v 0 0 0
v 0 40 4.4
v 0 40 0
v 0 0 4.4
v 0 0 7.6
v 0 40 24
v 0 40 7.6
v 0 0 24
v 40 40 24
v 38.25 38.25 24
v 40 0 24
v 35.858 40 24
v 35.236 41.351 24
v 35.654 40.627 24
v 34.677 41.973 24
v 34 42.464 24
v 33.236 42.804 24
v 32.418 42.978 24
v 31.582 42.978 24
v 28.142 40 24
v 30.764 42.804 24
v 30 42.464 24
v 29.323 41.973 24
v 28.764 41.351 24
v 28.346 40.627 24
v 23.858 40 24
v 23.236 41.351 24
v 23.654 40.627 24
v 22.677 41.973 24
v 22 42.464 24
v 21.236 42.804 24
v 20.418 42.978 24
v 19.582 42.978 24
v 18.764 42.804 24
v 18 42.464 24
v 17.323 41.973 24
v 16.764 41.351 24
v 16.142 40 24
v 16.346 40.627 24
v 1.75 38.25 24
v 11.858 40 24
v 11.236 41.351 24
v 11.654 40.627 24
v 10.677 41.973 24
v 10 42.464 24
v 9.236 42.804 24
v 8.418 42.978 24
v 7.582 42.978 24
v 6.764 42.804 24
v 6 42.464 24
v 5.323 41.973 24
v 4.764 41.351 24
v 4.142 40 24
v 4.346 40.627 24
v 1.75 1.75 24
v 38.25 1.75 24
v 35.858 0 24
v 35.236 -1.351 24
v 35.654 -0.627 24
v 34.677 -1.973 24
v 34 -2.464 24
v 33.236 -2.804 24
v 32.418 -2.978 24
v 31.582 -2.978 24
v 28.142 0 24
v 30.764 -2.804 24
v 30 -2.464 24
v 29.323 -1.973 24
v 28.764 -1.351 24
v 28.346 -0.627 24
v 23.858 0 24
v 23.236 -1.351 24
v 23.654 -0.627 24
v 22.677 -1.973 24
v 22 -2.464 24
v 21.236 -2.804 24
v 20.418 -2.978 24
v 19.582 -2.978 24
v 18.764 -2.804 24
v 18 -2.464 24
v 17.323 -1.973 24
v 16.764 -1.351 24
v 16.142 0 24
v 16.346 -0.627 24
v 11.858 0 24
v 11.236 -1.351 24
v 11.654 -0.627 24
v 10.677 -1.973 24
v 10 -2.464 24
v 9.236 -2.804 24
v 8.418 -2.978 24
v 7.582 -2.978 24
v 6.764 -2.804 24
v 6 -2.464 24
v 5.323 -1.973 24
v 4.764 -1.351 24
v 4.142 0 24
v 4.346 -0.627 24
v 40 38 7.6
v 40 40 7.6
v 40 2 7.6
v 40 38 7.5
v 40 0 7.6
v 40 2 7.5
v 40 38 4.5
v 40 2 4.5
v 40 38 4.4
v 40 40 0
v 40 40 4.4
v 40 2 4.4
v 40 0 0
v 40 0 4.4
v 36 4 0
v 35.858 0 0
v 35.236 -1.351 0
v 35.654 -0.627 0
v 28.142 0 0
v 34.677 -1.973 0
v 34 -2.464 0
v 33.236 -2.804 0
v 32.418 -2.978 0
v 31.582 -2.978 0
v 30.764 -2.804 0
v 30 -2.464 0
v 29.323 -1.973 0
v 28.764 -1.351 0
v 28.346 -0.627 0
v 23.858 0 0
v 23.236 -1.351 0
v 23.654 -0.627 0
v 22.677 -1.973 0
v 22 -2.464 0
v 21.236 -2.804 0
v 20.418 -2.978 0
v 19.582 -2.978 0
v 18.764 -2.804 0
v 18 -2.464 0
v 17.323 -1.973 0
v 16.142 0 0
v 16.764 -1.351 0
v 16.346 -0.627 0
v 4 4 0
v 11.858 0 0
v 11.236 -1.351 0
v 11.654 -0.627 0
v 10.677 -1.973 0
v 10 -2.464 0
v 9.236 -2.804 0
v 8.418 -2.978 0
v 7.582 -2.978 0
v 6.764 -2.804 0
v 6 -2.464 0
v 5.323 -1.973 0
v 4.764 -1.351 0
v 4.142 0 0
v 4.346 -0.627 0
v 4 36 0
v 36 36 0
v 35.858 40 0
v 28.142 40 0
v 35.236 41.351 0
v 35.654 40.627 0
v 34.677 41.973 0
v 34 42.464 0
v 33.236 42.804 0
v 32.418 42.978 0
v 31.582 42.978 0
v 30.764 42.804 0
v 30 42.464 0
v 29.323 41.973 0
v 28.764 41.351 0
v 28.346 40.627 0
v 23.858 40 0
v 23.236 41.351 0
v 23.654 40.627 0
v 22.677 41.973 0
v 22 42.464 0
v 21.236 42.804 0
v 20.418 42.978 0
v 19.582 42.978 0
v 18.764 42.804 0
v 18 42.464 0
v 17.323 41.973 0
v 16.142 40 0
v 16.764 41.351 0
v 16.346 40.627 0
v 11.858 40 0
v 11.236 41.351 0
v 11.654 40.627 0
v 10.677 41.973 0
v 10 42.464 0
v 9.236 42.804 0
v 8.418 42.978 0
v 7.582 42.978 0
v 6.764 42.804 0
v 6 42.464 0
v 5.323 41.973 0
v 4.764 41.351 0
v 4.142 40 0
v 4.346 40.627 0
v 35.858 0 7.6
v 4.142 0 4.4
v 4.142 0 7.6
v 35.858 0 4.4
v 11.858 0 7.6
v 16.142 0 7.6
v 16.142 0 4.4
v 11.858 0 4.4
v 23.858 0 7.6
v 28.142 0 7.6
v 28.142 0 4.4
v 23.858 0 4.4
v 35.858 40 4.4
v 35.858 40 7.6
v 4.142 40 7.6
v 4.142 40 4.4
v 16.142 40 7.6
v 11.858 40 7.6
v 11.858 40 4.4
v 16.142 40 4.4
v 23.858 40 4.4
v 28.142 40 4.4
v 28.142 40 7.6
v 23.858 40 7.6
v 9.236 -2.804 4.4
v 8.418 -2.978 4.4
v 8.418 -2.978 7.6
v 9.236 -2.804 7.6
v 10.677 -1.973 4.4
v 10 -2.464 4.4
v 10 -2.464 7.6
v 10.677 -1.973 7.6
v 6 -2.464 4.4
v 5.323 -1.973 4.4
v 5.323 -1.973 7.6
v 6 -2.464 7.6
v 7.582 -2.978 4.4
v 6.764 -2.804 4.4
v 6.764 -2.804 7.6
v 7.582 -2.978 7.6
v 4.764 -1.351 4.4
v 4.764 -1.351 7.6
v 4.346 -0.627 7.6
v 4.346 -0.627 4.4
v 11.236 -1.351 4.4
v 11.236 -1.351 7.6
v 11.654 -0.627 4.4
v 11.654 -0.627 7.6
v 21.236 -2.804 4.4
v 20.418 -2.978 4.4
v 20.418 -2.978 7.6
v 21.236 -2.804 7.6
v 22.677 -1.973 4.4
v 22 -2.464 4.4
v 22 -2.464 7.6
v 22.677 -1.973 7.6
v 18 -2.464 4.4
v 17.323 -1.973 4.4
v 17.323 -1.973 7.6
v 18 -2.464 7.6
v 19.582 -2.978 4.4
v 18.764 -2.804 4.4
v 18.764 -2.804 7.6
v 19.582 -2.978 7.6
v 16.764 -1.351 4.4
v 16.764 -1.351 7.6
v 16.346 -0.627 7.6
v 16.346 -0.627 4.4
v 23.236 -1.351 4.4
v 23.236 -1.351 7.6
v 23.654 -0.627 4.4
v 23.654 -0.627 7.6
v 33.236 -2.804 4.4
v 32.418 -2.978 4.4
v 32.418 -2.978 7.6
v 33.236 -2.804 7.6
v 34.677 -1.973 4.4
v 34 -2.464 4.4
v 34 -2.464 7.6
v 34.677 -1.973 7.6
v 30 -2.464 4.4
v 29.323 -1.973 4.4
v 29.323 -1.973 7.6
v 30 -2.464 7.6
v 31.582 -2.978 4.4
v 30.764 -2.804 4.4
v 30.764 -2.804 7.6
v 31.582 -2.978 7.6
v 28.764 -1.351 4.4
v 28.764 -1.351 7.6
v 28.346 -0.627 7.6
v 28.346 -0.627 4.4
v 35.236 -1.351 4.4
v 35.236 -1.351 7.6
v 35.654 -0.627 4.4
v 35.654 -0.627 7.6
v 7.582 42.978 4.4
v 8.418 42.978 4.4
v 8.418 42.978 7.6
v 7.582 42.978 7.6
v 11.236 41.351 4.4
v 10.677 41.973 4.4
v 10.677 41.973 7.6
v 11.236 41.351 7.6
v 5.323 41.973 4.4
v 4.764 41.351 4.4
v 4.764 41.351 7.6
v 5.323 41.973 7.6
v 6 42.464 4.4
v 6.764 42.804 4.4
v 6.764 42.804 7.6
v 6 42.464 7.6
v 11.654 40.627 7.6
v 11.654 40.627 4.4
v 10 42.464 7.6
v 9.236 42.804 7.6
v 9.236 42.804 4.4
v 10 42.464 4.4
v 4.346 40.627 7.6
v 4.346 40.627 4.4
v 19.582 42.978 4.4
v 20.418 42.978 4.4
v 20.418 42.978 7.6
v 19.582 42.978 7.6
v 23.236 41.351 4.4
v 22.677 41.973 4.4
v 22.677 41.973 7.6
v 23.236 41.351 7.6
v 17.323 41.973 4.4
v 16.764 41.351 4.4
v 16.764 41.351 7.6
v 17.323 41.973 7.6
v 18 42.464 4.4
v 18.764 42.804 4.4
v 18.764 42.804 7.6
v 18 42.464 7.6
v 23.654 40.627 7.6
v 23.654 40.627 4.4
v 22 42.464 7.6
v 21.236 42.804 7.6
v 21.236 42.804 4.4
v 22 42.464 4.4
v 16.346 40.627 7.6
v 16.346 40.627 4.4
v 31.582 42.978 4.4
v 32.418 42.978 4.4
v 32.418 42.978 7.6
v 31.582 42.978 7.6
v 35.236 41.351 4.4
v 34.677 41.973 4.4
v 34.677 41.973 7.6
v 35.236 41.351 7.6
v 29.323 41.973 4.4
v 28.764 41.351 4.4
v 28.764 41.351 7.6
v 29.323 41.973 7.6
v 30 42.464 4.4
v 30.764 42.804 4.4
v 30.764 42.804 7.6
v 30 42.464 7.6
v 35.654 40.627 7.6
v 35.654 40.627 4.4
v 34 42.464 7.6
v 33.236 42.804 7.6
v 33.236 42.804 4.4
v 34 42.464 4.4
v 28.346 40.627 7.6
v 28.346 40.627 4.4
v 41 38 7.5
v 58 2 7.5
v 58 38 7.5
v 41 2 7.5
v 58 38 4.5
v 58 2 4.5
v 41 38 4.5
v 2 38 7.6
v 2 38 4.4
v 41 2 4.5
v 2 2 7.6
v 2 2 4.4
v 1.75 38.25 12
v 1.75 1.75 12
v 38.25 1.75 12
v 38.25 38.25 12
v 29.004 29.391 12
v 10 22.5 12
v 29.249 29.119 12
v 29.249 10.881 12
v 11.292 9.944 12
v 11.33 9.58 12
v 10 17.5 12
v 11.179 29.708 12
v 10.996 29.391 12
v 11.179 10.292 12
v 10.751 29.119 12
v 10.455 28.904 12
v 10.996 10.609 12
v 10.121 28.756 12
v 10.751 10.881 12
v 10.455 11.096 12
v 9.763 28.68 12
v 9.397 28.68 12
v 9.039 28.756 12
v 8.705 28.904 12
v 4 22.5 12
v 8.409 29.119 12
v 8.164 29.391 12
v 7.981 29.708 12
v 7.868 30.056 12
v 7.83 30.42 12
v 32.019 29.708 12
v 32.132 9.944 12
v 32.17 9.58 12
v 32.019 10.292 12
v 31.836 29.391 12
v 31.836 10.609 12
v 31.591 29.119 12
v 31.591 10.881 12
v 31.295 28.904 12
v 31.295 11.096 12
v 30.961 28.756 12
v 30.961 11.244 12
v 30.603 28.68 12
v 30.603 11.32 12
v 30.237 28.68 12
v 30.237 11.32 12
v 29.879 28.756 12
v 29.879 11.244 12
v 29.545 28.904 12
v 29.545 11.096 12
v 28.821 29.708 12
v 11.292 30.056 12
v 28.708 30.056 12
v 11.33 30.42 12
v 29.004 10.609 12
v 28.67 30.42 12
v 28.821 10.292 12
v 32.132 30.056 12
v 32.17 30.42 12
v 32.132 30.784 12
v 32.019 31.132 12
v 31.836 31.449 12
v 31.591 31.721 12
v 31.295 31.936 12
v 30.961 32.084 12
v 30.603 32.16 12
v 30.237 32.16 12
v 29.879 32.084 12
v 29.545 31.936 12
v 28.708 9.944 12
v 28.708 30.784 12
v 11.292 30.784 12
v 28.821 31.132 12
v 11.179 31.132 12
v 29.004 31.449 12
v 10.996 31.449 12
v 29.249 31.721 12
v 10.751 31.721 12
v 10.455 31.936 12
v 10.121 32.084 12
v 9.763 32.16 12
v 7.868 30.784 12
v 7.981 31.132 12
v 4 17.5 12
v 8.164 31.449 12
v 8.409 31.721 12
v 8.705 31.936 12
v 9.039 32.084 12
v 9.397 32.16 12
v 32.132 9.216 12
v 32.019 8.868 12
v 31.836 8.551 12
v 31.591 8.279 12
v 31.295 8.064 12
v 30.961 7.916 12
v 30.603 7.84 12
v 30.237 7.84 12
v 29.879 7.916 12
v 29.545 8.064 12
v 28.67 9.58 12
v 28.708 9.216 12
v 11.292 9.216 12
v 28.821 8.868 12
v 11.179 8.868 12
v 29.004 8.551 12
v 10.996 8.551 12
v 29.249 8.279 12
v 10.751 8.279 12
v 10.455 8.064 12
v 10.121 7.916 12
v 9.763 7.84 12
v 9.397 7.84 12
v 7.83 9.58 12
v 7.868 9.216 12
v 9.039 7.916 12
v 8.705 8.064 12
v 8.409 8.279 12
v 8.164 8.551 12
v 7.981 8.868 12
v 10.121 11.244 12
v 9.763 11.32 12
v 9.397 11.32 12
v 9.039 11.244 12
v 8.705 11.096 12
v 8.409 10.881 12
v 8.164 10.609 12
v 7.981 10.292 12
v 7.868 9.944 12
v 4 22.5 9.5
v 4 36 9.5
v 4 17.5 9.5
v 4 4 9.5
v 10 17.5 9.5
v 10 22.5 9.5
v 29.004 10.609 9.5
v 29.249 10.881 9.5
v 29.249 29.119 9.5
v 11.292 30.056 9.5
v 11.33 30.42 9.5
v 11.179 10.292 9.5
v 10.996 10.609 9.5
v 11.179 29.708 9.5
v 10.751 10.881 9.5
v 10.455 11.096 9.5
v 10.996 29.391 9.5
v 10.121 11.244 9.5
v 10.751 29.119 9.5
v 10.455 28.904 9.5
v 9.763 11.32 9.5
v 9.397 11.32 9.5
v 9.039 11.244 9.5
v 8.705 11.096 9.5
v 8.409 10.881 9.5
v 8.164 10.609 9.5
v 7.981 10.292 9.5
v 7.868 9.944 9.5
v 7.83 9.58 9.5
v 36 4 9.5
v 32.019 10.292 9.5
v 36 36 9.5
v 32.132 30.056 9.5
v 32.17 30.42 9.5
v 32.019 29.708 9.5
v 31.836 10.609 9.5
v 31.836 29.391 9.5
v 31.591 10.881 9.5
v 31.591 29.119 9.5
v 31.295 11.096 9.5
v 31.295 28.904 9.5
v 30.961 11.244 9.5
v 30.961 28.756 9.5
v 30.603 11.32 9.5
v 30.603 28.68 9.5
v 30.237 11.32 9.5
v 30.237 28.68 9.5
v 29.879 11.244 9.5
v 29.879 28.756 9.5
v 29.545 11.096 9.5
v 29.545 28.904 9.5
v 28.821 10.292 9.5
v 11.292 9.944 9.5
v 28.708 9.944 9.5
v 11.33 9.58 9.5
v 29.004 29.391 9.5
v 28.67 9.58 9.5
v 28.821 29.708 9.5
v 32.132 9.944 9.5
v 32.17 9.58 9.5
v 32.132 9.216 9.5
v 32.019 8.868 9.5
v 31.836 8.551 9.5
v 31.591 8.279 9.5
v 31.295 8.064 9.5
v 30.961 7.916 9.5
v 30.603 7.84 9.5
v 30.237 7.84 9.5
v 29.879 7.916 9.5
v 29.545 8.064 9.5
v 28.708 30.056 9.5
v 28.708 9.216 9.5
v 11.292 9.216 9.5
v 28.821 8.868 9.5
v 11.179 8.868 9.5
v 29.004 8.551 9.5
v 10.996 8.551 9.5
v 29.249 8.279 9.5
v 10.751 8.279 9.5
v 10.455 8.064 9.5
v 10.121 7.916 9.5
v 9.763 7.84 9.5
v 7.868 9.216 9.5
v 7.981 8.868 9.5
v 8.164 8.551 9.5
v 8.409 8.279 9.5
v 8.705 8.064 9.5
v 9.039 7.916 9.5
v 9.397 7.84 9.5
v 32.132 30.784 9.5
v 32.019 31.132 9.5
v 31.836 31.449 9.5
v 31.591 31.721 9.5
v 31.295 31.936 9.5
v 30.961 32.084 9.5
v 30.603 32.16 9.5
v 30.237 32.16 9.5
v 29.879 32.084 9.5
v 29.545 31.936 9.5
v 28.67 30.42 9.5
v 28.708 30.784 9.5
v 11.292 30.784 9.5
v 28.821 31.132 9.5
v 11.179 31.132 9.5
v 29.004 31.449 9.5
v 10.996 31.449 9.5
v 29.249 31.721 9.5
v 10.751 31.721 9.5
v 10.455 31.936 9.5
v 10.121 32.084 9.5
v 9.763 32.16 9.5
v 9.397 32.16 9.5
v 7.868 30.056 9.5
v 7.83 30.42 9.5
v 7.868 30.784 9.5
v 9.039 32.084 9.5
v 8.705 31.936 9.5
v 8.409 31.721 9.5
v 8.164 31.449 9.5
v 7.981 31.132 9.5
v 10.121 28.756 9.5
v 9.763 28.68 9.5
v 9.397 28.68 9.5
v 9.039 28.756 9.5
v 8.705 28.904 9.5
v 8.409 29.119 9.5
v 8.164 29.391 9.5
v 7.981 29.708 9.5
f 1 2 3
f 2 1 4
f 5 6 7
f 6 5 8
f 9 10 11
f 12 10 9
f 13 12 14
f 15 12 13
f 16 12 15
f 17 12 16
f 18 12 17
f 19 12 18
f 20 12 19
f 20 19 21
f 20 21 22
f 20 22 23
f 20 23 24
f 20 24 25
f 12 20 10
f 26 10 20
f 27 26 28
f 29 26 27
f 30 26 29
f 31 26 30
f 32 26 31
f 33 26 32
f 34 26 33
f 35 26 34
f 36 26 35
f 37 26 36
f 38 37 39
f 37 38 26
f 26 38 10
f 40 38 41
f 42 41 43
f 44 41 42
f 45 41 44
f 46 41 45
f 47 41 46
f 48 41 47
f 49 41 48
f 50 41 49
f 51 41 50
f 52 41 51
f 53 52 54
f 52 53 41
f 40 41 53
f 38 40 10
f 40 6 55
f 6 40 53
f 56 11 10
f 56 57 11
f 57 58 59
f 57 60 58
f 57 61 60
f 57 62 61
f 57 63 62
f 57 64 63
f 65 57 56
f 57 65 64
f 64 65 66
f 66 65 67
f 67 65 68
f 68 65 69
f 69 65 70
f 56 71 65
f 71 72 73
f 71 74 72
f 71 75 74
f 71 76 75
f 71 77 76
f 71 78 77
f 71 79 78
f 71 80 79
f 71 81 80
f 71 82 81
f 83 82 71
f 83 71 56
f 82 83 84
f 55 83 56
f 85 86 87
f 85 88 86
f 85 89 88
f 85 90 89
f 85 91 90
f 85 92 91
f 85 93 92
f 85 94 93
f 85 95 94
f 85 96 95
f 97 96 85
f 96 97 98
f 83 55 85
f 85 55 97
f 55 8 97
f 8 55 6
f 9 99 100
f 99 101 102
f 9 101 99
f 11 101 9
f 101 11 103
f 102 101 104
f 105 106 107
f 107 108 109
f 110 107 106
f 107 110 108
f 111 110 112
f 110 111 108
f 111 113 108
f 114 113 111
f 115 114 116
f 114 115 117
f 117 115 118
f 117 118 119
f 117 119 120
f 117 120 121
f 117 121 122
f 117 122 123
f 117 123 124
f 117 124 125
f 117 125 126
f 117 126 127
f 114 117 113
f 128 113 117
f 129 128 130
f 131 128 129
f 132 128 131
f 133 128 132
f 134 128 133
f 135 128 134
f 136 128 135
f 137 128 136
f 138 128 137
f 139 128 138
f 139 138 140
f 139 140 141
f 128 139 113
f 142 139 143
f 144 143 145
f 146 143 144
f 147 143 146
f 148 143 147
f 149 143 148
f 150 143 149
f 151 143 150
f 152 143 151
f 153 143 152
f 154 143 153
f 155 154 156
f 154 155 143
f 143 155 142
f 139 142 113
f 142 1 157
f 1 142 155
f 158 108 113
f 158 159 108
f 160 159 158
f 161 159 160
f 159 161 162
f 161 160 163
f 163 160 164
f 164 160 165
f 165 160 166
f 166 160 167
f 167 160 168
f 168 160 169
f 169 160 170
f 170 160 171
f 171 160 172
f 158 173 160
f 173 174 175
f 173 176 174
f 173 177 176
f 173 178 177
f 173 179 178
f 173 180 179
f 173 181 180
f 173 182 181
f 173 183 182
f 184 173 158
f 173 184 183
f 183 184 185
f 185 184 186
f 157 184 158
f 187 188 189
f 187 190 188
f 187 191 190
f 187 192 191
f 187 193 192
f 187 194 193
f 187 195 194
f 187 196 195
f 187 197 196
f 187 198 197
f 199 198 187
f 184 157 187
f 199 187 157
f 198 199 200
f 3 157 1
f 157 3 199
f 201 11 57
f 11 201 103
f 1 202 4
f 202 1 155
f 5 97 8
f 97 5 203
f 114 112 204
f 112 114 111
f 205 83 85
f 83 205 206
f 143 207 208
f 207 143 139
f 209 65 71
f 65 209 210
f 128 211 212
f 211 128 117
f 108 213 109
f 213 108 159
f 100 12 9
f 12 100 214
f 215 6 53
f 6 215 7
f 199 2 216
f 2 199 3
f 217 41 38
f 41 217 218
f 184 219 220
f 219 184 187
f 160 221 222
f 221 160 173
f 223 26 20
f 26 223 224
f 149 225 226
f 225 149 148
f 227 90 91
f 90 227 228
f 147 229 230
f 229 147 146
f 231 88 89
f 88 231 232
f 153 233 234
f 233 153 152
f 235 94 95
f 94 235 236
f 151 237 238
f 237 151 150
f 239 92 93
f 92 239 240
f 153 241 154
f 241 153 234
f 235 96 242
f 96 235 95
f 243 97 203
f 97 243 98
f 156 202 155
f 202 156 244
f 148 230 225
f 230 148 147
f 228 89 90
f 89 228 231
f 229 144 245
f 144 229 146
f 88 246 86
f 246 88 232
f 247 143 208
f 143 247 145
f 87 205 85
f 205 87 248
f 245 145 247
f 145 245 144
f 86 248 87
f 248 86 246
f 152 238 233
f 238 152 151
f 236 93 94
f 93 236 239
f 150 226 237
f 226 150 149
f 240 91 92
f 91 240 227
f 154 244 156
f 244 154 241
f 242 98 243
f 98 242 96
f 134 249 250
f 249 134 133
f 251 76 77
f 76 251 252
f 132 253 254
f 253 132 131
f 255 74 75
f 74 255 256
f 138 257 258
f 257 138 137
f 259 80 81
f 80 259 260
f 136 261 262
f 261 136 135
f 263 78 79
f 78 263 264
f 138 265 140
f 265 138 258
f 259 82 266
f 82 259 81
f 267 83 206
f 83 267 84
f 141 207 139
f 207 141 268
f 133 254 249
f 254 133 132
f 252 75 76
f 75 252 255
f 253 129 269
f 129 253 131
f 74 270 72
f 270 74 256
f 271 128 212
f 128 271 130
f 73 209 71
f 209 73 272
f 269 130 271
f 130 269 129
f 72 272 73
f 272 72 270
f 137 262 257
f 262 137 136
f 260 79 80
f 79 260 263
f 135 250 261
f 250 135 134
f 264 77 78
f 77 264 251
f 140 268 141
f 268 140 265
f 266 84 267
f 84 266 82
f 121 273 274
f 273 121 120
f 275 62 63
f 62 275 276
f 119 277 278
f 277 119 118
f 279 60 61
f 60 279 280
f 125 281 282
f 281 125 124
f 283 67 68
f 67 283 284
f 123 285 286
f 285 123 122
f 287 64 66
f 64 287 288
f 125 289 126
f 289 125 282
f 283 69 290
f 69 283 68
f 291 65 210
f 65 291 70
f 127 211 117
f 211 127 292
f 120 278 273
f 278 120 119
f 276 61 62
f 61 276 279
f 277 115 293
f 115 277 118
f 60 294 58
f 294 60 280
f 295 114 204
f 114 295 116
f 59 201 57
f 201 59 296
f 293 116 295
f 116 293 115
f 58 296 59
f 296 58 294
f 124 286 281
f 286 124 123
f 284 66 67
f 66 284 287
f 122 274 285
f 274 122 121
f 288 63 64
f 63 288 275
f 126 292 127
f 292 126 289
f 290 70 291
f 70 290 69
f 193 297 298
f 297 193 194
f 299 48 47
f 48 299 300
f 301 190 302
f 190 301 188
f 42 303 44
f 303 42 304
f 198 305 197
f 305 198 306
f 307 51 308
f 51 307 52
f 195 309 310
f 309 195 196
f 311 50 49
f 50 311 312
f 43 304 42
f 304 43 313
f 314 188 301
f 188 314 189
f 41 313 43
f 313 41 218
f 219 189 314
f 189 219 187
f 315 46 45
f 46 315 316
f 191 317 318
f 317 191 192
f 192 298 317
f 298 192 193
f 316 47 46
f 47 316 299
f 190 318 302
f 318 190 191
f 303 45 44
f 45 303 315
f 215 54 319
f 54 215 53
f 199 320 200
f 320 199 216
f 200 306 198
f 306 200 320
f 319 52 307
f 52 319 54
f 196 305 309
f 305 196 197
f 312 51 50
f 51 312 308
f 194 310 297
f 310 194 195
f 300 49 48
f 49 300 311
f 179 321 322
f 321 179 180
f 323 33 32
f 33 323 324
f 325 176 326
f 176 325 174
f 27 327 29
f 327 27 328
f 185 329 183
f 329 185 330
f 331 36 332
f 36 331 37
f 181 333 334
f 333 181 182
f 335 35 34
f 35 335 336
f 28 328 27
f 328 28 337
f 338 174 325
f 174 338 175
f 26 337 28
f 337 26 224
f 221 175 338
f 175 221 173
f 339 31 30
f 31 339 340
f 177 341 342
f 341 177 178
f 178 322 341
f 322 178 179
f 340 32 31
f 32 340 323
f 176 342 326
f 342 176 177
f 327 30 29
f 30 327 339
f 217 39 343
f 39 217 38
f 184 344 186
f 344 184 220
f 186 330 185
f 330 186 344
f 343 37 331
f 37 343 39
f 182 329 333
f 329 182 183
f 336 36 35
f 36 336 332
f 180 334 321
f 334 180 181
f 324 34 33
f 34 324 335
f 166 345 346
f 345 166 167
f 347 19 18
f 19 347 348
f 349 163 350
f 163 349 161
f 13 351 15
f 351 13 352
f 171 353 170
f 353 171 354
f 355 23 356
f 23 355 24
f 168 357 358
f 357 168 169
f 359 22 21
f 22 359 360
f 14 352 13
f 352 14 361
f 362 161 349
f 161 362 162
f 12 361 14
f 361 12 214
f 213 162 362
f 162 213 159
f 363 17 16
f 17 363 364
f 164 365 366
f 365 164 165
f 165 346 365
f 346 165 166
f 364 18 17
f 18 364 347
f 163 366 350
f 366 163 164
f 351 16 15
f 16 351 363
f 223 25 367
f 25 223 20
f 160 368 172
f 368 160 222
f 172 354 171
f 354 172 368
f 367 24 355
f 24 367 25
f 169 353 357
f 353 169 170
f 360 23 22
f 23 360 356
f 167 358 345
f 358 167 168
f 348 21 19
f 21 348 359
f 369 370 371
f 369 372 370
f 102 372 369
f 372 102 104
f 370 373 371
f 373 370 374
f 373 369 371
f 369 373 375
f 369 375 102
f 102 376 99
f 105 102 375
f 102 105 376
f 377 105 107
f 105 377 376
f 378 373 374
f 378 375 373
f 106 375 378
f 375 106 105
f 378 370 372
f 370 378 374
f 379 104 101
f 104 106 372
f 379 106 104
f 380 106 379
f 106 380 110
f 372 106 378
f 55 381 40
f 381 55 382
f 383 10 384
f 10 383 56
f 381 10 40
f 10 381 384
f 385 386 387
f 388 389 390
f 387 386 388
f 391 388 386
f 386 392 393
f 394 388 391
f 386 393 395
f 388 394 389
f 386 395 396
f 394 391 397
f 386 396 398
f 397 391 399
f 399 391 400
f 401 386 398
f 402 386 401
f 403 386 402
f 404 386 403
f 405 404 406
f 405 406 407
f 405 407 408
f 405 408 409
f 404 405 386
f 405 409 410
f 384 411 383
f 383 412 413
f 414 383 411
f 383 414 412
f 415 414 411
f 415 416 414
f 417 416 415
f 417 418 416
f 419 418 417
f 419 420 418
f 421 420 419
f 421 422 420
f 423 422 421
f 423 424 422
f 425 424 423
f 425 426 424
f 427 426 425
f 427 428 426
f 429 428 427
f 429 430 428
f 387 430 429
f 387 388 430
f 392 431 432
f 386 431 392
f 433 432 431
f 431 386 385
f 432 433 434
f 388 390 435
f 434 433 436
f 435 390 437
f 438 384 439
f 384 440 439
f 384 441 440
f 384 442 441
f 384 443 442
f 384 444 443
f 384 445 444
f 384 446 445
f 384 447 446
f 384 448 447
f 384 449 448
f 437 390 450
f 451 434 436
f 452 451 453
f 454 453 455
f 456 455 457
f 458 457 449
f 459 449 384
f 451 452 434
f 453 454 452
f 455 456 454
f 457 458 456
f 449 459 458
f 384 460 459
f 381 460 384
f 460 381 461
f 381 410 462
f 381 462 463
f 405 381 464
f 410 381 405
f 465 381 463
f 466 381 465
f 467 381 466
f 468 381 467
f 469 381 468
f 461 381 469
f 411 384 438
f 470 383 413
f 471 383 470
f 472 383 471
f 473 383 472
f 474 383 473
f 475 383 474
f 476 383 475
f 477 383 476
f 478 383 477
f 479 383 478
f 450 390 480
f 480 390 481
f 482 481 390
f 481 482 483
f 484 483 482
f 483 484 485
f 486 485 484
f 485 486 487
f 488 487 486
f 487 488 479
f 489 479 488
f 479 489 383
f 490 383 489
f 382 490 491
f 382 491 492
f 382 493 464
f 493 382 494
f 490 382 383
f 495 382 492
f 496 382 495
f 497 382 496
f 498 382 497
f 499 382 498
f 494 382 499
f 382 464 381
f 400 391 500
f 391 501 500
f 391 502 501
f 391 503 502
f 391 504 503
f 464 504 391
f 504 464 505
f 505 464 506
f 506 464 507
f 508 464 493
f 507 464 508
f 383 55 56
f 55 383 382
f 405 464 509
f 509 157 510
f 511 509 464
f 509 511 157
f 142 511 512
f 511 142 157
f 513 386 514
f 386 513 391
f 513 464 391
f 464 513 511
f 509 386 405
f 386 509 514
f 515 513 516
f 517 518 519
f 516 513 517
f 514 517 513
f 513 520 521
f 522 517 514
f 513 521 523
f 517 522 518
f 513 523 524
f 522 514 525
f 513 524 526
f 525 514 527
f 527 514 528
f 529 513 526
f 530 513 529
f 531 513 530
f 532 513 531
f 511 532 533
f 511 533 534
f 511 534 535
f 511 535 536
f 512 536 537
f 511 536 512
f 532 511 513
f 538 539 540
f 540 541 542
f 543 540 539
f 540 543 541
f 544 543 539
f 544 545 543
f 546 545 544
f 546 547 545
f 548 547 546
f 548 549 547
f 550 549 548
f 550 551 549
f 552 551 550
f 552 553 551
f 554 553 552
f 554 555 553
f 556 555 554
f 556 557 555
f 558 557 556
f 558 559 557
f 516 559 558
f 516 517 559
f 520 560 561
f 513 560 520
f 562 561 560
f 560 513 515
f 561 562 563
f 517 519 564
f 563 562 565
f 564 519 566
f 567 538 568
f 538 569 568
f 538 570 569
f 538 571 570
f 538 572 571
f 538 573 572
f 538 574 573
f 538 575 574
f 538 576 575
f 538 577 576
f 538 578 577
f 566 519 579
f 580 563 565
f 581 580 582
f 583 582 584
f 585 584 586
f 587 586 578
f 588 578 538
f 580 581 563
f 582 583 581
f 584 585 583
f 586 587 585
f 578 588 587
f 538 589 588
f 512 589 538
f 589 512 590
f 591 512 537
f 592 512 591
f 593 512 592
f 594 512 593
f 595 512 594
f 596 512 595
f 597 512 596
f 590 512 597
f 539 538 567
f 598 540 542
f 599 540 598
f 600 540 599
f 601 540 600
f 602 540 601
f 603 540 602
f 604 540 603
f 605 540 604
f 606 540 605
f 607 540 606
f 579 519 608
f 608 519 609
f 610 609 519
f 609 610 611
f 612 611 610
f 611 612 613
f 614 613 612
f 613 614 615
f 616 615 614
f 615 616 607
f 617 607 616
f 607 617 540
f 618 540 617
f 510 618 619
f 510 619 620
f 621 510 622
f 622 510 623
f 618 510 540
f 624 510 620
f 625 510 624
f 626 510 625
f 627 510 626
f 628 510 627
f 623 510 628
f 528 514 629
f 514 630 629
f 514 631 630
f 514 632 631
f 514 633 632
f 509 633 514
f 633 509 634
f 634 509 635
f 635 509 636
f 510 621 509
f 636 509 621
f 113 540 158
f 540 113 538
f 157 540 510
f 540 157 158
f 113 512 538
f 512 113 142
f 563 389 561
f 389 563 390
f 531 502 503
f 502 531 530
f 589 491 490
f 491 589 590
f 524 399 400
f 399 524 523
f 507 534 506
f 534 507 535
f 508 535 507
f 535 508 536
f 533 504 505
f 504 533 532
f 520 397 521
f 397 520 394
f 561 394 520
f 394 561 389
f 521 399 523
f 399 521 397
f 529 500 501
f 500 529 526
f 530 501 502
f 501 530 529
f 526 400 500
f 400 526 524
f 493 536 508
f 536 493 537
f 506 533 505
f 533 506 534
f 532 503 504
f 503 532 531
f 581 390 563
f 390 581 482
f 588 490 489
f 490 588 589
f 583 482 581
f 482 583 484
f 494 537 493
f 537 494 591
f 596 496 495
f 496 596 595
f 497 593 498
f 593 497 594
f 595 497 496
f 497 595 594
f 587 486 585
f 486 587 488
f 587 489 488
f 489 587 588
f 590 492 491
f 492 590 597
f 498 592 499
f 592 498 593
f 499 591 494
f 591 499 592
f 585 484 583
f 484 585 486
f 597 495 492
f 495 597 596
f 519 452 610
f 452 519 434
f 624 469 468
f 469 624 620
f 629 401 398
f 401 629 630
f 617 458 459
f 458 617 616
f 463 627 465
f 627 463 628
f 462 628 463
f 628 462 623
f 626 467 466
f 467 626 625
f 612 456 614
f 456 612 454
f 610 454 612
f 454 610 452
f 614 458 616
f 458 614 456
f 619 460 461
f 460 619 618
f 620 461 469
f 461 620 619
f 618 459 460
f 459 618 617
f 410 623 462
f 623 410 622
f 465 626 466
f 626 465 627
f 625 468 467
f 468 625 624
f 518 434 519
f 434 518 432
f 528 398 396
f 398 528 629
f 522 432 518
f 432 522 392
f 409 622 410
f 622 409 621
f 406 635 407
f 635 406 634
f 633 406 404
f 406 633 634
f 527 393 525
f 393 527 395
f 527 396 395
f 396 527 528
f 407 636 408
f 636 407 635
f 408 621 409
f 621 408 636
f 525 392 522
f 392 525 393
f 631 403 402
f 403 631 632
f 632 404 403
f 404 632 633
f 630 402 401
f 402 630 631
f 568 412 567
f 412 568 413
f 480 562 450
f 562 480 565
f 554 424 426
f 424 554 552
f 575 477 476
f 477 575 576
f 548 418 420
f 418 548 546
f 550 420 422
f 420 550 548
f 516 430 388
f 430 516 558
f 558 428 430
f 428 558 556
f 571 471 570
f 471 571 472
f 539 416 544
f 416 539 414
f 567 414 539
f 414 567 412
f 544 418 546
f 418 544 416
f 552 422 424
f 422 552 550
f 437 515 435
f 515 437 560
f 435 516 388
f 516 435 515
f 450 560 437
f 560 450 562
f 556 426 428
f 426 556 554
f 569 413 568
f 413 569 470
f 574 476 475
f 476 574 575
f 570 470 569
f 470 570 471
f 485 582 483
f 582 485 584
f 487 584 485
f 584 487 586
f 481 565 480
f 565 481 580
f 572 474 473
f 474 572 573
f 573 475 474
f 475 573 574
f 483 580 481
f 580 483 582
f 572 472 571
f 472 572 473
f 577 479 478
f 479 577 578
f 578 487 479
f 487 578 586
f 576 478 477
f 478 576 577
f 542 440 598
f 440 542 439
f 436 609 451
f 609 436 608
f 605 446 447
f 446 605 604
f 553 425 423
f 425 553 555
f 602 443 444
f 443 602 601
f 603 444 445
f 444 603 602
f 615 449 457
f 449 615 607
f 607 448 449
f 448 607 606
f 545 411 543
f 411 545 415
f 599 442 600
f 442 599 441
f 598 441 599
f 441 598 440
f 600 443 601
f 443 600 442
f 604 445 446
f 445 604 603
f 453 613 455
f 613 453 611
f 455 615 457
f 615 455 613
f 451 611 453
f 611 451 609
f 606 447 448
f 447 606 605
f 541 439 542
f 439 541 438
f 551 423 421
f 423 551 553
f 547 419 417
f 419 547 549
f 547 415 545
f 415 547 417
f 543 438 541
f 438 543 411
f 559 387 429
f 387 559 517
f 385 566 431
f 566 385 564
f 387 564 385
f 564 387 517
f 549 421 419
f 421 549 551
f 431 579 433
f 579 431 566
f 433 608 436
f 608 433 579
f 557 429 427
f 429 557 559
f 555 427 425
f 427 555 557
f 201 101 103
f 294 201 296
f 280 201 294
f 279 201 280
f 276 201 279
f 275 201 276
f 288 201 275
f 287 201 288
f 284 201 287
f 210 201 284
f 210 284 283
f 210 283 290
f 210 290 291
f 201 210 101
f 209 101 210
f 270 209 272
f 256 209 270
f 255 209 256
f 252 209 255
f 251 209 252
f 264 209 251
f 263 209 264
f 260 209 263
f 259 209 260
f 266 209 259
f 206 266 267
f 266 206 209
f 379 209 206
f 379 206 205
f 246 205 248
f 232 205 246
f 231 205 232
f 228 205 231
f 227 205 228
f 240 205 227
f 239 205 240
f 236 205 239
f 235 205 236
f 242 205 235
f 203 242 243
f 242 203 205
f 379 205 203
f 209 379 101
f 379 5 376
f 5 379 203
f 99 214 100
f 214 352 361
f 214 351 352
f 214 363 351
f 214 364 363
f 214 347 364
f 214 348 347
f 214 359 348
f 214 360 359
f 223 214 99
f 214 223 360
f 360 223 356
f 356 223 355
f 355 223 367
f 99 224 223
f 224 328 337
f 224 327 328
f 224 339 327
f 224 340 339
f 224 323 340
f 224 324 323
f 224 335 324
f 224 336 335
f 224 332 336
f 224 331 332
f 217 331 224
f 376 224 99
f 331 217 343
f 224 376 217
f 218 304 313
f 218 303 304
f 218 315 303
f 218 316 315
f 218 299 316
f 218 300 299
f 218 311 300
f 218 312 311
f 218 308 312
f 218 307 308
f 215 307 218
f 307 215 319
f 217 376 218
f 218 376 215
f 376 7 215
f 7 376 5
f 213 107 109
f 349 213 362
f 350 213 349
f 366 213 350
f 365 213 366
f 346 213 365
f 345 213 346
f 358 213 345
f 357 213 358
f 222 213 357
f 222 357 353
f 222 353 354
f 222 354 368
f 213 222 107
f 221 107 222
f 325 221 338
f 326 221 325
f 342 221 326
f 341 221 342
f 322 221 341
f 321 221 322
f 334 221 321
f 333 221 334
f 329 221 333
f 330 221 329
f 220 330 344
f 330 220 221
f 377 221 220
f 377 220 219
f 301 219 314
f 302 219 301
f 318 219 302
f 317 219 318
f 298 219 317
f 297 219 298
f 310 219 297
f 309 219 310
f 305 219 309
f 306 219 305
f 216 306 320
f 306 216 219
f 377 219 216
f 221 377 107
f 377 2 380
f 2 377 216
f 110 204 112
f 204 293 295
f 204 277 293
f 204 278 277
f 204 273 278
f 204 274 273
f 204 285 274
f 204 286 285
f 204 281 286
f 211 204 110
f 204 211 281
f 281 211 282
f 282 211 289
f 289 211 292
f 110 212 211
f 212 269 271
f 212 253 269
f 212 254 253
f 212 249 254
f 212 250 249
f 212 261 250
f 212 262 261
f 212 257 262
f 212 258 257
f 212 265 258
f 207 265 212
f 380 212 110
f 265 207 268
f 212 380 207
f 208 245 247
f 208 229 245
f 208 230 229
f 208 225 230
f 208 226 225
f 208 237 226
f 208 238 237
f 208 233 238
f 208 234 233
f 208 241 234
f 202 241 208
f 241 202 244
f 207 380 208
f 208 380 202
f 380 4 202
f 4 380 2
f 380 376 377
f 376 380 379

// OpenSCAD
//Mindware Start-up circuits
//Load socket module
//PCB yet to take one of these apart
//m4 screws were used for CBA STM32 case
//holes for banana jacks are 8mm diameter
m4Radius = 3.5/2; // centre 4mm or more from edge, KiCad 5.08mm or 0.2"
holeOffset = 5.08;
$fn=30;
difference(){
    union(){
        cube([40,40,24]);
        translate([8,1,0]){
            cylinder(24,4,4);
        }
        translate([20,1,0]){
            cylinder(24,4,4);
        }
        translate([32,1,0]){
            cylinder(24,4,4);
        }
        translate([8,39,0]){
            cylinder(24,4,4);
        }
        translate([20,39,0]){
            cylinder(24,4,4);
        }
        translate([32,39,0]){
            cylinder(24,4,4);
        }
        //acrylic tab
        translate([38,2,4.5]){
            cube([(76-40)/2+2,36,3]);
        }    
    }
    translate([1.75,1.75,12]){
        cube([36.5,36.5,13]);
    }
    translate([4,20-5/2,0]){
        cube([6,5,13]);
    }    
    translate([2+2.5-0.5,2+2.5-0.5,-1]){
        //pcb cube([31,31,1]);
        cube([32,32,12+1-(8-5.5)]);
    }
    translate([2+2.5+holeOffset,2+2.5+holeOffset,0]){
        cylinder(24,m4Radius,m4Radius);
    }
    translate([2+2.5+holeOffset,40-(2+2.5+holeOffset),0]){
        cylinder(24,m4Radius,m4Radius);
    }
    translate([40-(2+2.5+holeOffset),2+2.5+holeOffset,0]){
        cylinder(24,m4Radius,m4Radius);
    }
    translate([40-(2+2.5+holeOffset),40-(2+2.5+holeOffset),0]){
        cylinder(24,m4Radius,m4Radius);
    }
    //acrylic slot
    translate([-1,-3,4.4]){
        cube([42,5,3.2]);
    }
    translate([-1,-1,4.4]){
        cube([3,42,3.2]);
    }
    translate([-1,38,4.4]){
        cube([42,5,3.2]);
    }    
}
